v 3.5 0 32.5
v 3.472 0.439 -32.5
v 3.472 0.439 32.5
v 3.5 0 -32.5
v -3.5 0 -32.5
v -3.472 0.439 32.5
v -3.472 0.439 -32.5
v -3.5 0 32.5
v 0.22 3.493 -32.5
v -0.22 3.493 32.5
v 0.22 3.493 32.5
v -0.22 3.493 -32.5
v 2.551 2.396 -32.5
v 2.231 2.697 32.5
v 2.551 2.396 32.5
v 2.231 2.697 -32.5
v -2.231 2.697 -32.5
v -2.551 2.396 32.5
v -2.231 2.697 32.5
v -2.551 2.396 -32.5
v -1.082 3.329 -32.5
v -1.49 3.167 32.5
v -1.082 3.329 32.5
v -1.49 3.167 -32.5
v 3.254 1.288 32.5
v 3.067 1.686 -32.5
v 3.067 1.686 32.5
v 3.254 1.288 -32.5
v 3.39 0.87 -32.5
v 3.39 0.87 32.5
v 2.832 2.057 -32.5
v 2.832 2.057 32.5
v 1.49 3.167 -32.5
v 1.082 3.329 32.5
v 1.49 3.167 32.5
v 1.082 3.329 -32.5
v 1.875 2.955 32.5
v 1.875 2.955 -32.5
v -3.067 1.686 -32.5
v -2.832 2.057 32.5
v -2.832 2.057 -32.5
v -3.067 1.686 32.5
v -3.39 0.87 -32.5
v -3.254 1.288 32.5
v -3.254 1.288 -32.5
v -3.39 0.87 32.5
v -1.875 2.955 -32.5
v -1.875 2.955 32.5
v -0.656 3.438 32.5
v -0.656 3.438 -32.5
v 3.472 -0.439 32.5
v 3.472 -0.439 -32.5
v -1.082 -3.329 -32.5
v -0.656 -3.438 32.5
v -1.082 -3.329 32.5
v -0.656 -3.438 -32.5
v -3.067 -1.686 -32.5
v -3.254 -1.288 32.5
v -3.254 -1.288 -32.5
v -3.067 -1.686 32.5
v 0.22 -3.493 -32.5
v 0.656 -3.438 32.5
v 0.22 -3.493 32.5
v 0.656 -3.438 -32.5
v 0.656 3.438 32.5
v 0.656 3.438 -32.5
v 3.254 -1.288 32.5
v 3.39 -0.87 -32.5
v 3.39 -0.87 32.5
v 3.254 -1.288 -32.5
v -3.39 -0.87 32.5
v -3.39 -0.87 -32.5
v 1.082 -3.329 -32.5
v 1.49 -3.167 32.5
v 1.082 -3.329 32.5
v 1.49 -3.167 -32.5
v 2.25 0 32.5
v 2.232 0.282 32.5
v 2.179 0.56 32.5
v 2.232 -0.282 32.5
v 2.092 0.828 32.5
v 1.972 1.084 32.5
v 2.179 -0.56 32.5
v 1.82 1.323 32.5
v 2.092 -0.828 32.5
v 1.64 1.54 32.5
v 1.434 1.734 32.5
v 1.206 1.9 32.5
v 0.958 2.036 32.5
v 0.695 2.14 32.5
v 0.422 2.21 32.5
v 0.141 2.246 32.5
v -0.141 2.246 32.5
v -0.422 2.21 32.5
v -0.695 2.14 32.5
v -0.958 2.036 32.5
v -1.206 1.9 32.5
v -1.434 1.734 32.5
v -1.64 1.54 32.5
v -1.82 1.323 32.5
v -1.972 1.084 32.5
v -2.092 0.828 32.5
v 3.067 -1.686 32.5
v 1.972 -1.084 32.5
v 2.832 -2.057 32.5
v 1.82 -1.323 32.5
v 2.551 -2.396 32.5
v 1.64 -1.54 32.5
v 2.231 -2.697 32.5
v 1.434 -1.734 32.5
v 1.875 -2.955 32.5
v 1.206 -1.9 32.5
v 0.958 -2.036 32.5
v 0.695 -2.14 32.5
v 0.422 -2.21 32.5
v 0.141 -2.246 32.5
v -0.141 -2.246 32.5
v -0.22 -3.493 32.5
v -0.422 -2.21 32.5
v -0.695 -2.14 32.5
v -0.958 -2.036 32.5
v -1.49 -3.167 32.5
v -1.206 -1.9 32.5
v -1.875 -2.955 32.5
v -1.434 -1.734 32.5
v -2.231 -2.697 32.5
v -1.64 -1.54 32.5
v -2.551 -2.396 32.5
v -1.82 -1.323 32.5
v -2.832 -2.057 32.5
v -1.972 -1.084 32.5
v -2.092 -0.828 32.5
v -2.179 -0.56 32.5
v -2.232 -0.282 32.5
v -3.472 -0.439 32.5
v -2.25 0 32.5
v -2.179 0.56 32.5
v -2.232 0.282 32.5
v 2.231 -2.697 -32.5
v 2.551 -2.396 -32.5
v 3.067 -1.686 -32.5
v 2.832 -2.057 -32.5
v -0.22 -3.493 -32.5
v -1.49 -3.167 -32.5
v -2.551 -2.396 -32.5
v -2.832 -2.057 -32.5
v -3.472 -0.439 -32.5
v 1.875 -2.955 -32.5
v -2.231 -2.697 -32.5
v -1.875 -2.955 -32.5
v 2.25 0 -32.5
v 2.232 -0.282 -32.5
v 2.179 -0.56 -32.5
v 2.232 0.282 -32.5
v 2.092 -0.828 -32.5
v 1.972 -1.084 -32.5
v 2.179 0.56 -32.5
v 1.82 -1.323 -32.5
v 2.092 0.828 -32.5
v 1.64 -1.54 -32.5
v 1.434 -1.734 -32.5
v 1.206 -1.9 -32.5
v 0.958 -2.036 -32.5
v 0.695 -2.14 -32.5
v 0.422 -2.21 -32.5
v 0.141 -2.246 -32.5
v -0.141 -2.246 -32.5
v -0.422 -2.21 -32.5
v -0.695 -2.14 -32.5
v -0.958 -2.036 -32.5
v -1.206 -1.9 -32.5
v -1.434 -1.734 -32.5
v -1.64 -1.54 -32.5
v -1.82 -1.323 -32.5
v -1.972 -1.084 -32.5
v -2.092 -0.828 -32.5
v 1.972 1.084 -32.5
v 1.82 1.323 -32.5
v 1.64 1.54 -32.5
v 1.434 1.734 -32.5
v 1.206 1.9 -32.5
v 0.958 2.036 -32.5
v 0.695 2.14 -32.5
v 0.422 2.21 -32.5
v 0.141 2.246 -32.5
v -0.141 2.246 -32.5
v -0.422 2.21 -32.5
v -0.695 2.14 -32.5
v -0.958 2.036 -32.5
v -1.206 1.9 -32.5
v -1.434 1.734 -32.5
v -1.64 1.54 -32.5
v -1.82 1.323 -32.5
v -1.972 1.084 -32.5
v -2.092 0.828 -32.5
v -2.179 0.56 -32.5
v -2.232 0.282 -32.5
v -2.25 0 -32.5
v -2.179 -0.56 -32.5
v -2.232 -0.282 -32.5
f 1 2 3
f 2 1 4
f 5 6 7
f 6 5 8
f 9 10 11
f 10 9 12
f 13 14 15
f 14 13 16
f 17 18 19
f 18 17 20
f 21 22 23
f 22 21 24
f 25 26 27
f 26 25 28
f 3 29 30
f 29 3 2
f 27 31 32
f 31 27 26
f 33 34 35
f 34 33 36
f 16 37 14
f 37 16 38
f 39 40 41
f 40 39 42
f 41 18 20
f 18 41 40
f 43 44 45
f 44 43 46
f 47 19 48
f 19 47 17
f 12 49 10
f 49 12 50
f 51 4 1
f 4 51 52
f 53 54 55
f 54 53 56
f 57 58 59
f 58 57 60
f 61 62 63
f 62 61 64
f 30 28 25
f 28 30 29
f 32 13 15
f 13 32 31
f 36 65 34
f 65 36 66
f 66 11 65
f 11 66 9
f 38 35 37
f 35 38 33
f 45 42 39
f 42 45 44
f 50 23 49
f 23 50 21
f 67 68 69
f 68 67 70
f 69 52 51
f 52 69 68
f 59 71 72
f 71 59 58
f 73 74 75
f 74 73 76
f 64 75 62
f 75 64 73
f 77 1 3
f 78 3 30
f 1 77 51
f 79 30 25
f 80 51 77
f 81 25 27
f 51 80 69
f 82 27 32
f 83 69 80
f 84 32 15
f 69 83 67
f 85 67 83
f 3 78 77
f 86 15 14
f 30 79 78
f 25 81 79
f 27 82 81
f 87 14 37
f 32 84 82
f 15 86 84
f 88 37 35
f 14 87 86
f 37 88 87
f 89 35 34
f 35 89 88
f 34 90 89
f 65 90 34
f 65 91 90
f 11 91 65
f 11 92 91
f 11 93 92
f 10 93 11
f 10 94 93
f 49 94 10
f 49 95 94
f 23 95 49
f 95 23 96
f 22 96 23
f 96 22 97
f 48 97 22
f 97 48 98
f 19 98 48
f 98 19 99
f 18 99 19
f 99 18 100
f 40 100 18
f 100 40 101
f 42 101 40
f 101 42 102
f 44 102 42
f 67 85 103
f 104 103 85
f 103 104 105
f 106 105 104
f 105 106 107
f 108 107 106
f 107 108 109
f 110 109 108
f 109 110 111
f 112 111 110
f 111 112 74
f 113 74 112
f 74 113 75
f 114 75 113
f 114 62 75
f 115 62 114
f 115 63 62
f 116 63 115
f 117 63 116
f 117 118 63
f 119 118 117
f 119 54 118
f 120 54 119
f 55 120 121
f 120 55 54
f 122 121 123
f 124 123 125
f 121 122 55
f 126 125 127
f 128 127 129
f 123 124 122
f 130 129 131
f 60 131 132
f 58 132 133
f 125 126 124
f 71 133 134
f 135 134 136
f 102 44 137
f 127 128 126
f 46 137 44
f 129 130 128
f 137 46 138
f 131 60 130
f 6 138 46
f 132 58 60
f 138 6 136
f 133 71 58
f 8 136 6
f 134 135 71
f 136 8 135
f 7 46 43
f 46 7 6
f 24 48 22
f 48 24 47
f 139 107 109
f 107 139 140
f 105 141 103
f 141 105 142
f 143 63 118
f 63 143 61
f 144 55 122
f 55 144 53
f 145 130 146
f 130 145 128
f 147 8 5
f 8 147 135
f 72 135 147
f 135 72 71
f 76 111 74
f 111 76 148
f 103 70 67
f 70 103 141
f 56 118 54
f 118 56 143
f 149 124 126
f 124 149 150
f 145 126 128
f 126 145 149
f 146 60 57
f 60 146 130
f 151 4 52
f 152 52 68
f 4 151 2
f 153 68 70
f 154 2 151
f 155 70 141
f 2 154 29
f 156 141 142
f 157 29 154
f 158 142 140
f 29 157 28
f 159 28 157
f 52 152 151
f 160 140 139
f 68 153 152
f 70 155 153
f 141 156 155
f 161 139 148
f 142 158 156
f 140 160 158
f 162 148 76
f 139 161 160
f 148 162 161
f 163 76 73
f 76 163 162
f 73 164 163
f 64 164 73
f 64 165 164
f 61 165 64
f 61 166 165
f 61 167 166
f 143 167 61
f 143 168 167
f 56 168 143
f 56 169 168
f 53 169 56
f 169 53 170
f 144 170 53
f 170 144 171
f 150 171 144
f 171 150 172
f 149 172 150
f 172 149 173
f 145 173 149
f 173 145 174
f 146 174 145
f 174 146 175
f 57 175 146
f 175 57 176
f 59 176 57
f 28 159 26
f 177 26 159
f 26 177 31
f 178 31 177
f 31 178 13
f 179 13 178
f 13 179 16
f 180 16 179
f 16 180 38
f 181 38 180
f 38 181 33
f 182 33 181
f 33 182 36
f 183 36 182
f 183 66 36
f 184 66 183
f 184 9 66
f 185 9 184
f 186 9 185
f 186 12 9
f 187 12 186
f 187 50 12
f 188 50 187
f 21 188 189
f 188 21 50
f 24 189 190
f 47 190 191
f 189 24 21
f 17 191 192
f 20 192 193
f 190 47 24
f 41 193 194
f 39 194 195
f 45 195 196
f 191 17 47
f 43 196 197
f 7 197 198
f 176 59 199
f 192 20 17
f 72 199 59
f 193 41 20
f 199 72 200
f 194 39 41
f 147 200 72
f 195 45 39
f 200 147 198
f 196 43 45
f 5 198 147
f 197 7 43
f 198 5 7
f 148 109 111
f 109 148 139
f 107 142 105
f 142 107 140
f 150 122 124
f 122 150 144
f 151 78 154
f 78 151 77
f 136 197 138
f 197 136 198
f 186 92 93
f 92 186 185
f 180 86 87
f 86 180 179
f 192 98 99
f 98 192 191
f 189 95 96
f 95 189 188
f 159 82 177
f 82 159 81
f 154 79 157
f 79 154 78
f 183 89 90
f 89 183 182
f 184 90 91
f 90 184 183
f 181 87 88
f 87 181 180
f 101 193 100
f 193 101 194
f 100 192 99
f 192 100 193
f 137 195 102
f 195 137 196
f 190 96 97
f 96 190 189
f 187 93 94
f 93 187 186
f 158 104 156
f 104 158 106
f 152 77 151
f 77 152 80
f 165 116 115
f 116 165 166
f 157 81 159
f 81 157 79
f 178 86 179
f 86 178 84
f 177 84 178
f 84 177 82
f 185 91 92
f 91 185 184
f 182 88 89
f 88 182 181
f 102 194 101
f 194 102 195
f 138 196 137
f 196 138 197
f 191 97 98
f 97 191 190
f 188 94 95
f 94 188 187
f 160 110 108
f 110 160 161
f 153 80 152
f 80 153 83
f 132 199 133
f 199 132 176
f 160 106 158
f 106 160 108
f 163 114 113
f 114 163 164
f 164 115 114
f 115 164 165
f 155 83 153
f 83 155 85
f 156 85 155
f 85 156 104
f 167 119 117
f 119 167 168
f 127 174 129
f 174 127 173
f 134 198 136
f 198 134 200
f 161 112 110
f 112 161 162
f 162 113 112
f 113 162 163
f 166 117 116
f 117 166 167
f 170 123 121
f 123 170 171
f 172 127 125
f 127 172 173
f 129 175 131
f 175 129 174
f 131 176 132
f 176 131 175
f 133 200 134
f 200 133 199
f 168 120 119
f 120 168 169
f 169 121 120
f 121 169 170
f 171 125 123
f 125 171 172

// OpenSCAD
$fn = 50;


difference() {
	union() {
		translate(v = [0, 0, -32.5000000000]) {
			cylinder(h = 65, r = 3.5000000000);
		}
	}
	union() {
		translate(v = [0, 0, -100.0000000000]) {
			cylinder(h = 200, r = 2.2500000000);
		}
	}
}
